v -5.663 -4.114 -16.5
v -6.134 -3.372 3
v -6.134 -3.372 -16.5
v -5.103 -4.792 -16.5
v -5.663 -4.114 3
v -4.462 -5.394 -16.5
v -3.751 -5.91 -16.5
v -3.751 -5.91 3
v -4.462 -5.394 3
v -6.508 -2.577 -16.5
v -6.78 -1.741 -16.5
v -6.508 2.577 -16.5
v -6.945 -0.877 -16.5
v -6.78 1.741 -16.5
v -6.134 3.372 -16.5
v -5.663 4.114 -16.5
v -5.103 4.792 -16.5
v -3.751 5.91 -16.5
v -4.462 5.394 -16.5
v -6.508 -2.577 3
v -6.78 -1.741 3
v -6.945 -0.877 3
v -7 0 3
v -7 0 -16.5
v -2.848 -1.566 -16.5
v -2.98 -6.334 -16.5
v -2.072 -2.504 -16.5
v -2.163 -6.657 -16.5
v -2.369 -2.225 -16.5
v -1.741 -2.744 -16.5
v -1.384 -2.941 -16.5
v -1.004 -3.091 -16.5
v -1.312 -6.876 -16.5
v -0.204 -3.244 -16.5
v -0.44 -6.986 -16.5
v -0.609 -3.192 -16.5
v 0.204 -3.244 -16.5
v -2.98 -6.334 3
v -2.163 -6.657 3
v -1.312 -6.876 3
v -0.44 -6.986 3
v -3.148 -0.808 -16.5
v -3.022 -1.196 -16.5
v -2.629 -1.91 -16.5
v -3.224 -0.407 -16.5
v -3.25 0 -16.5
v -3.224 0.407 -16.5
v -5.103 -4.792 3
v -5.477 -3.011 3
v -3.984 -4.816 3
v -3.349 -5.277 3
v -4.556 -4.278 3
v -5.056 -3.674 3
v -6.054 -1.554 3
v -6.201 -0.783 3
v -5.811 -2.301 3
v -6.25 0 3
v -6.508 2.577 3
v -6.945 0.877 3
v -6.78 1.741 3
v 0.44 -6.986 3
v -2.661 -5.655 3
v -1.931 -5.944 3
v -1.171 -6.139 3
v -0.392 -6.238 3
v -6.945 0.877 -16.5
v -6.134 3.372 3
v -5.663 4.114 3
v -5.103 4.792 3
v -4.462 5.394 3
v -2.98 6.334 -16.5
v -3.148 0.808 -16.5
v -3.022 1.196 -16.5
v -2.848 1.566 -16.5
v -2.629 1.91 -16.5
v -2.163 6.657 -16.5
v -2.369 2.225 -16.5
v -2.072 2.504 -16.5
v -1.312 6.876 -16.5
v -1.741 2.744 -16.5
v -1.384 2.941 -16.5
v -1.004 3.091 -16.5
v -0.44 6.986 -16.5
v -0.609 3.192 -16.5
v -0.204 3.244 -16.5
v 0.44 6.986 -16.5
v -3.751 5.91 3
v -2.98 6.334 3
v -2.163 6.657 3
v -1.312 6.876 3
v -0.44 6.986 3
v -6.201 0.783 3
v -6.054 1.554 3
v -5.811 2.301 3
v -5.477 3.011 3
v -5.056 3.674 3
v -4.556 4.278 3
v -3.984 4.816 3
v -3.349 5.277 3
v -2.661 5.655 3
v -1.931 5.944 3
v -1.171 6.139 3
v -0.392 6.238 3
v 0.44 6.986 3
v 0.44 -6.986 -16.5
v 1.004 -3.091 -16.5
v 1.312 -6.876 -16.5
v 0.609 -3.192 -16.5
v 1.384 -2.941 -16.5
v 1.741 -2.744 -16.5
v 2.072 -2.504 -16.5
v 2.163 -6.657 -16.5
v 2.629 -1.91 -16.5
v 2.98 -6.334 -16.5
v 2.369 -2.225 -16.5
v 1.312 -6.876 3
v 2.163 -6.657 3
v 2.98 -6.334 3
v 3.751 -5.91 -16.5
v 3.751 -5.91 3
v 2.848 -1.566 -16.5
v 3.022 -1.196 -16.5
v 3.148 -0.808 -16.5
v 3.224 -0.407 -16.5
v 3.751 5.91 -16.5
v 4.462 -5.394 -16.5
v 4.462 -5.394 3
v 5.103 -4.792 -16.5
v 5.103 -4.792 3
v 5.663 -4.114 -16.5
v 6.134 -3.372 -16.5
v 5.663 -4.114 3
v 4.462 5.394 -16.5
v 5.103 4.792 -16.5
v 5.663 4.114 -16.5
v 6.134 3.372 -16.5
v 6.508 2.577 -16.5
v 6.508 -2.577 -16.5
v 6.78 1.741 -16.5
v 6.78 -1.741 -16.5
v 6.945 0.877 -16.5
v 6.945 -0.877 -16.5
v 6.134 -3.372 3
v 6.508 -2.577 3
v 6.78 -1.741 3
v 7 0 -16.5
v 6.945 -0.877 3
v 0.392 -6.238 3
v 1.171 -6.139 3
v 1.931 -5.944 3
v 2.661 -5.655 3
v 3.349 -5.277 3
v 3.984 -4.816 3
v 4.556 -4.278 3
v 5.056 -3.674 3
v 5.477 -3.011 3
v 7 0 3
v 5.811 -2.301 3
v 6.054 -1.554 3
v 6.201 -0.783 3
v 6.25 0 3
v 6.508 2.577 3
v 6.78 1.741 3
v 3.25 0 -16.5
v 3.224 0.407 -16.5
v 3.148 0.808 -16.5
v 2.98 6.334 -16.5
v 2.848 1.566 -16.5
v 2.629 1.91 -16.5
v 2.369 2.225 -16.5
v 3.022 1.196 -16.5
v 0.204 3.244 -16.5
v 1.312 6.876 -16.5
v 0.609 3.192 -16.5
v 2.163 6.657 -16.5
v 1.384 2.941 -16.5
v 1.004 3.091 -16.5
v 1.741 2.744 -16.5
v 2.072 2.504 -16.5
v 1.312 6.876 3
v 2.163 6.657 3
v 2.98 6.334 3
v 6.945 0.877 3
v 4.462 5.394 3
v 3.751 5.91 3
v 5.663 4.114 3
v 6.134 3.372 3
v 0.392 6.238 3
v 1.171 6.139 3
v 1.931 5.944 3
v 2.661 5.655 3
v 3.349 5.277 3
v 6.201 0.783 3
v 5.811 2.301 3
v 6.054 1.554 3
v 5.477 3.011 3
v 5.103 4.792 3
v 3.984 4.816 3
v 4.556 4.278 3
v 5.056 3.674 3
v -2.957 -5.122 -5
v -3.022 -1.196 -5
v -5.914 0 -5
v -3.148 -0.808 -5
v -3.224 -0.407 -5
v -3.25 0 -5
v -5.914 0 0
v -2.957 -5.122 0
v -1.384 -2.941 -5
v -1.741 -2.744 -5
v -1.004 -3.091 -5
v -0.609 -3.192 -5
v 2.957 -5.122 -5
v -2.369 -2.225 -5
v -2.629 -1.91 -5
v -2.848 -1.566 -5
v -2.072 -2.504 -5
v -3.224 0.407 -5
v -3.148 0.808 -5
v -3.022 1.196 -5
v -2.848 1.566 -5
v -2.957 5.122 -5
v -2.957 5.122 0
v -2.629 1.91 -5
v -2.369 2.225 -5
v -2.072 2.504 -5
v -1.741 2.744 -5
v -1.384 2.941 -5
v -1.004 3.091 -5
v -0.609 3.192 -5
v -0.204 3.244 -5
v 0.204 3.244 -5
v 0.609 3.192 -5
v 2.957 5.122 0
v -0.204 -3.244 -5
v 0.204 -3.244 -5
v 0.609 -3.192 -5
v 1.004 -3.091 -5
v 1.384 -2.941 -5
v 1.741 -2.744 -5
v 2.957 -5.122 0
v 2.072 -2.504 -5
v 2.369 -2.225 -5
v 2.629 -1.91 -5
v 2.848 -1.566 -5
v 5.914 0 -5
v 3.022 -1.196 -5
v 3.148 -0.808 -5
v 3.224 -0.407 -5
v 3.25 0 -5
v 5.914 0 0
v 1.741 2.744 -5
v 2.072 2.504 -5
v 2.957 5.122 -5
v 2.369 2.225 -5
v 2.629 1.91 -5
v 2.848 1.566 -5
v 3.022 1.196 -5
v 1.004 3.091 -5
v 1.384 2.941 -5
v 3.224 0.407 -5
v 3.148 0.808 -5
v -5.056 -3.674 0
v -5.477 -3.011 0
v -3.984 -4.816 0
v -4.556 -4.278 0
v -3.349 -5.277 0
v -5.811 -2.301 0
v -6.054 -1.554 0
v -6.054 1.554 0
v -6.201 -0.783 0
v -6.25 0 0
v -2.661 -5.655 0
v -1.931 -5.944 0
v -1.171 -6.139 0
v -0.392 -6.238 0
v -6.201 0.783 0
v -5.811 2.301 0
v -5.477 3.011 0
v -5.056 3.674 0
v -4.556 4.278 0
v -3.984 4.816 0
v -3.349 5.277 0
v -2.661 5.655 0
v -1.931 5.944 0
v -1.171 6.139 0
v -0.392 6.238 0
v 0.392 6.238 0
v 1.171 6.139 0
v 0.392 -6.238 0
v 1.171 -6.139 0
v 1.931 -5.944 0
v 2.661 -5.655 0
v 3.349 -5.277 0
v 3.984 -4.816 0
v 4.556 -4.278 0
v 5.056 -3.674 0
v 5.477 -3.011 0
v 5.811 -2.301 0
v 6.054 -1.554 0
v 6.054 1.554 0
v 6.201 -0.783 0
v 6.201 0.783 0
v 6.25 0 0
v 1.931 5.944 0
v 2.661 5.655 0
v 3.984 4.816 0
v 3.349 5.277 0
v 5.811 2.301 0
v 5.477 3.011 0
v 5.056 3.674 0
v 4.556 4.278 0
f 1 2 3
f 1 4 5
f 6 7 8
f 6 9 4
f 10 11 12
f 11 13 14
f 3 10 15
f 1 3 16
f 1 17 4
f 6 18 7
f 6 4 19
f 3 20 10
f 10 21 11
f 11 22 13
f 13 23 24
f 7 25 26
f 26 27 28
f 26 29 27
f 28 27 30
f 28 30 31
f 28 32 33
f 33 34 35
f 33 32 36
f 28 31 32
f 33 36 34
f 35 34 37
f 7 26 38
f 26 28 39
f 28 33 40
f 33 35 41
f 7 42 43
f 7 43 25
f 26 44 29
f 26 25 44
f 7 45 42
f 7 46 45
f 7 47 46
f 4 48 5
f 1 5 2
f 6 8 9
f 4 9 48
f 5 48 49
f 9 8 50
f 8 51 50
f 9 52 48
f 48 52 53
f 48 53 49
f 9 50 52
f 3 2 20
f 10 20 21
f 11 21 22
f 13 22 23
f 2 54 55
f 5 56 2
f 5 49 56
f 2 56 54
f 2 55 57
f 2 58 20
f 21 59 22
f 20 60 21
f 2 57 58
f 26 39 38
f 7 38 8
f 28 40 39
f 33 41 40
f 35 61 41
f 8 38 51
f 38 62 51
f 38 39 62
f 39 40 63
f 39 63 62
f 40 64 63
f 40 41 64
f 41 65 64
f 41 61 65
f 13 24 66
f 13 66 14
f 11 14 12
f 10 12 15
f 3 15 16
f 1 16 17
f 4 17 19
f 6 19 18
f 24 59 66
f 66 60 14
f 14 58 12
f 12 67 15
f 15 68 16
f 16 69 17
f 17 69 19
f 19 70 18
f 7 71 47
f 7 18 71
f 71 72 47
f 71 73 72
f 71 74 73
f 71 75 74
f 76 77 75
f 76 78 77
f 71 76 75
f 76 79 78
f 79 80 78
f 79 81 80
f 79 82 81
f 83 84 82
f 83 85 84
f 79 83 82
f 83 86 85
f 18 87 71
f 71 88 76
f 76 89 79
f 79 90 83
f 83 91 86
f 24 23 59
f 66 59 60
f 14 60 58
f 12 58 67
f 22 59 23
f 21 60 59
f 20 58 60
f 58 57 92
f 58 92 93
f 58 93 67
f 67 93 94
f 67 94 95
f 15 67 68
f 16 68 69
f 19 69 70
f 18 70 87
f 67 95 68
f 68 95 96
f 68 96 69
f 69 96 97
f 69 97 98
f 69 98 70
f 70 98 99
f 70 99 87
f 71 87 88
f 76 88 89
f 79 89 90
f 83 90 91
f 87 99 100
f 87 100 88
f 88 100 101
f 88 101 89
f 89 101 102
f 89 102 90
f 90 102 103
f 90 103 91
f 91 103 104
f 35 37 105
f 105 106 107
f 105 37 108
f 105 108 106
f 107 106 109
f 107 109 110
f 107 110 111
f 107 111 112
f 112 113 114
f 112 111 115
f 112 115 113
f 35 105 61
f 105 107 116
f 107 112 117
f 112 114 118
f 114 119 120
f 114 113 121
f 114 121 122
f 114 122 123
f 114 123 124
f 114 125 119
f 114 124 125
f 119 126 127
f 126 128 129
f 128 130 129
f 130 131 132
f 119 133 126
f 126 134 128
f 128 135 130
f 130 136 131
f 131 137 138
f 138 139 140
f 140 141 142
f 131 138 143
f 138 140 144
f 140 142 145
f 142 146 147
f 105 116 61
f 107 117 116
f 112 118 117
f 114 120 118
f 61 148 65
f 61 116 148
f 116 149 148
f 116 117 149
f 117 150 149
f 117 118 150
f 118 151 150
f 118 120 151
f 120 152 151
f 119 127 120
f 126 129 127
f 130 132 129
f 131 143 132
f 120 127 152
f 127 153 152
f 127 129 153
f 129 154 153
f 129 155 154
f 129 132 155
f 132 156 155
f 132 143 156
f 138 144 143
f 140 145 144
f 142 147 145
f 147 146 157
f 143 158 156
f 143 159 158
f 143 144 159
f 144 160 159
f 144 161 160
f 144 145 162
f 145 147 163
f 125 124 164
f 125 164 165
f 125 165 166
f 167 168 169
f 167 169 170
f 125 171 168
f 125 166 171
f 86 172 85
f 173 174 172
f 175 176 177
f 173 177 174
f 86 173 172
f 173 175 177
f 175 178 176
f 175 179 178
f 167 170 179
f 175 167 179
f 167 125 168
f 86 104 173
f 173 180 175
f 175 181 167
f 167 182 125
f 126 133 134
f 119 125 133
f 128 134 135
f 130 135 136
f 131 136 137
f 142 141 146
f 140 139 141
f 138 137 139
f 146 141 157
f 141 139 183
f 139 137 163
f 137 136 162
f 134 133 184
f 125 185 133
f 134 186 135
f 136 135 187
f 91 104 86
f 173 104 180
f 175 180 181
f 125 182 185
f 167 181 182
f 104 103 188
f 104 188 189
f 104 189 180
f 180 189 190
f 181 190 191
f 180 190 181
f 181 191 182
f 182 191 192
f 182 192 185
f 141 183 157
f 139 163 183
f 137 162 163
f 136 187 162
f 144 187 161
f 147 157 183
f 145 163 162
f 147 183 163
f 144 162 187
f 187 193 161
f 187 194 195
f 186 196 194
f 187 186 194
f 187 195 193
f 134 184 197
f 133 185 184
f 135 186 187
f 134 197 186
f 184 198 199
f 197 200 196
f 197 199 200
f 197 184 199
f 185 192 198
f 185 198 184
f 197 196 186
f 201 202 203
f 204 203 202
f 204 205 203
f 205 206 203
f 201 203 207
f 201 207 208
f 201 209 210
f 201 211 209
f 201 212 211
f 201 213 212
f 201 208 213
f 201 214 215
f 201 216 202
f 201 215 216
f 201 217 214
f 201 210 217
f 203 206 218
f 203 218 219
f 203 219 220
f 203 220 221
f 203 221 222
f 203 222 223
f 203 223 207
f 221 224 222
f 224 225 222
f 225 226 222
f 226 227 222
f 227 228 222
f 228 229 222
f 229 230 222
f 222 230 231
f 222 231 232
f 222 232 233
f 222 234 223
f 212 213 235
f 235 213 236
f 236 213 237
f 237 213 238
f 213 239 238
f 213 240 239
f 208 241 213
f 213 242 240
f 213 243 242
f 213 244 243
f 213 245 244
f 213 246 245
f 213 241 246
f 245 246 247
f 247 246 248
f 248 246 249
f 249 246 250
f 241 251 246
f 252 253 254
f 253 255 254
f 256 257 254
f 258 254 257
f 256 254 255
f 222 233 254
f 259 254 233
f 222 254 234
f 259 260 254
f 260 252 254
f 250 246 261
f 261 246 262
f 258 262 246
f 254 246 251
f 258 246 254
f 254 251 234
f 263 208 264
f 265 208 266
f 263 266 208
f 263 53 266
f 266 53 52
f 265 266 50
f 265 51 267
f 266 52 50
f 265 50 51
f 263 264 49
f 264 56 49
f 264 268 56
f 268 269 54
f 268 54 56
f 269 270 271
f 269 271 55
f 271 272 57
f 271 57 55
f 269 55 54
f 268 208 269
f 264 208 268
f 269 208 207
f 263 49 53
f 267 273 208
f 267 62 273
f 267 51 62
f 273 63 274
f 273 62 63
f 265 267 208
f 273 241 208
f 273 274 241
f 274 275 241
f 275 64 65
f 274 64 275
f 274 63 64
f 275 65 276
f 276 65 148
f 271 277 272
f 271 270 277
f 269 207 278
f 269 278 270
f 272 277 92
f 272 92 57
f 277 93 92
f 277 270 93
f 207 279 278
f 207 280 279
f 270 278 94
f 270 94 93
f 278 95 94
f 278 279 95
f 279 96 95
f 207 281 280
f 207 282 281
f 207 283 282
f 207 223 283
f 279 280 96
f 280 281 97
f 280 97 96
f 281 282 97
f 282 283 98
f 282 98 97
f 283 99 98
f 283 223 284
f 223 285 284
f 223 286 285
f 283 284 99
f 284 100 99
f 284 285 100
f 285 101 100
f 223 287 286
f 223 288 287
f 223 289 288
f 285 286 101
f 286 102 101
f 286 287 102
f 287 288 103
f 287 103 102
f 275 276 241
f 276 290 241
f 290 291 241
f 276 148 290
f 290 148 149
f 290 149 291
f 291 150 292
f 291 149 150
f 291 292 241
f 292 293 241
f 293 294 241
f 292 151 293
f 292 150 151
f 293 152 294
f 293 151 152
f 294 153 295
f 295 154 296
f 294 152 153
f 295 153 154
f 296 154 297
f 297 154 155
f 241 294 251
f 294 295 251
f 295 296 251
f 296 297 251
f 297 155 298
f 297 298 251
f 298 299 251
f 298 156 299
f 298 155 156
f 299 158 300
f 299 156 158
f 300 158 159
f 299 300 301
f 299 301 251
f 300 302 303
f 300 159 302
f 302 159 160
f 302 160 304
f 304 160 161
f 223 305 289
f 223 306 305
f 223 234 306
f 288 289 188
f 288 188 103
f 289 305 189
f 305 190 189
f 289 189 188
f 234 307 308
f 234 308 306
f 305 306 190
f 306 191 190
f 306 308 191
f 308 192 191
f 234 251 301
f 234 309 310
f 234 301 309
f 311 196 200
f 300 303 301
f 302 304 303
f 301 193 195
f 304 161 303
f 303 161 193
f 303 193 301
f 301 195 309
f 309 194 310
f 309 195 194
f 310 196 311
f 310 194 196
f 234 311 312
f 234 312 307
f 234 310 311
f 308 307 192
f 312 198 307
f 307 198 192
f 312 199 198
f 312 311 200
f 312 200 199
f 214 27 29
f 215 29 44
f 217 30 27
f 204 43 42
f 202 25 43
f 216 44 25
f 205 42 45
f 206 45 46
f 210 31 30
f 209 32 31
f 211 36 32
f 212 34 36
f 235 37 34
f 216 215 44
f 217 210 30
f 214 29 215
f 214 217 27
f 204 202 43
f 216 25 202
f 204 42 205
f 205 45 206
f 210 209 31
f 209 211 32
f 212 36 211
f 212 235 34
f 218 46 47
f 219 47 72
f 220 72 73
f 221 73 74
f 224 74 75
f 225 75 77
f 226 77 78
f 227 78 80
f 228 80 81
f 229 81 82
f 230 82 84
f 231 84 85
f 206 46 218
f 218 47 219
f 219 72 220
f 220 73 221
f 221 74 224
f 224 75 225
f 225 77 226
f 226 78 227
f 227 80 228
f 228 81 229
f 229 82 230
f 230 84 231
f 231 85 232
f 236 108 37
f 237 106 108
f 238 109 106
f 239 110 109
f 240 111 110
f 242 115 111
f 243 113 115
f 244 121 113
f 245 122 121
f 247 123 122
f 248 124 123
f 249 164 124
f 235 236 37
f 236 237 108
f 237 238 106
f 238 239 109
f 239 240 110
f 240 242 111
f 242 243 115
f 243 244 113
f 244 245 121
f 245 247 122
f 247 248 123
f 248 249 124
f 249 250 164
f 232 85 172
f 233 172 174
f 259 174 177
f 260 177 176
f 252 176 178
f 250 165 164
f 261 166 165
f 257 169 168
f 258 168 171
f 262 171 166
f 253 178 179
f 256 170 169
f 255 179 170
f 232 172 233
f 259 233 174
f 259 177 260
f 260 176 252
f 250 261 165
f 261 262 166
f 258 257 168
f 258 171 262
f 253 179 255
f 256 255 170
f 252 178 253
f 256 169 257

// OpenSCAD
$fn = 50;

difference() {
	union() {
		translate(v = [0, 0, -16.5]) {
			cylinder(h = 19.5, r = 7.0);
		}
		#translate(v = [0, 0, -18.0]) {
			cylinder(h = 18, r = 2.875);
		}
	}
	union() {
		translate(v = [0, 0, 0]) {
			rotate(a = [0, 0, 0]) {
				difference() {
					union() {
						translate(v = [0, 0, -5]) {
							linear_extrude(height = 5) {
								polygon(points = [[5.914249999999999, 0.0], [2.957125, 5.1218907443321156], [-2.9571249999999982, 5.1218907443321156], [-5.914249999999999, 7.242867331857232e-16], [-2.9571250000000022, -5.121890744332115], [2.9571249999999956, -5.121890744332118]]);
							}
						}
					}
					union();
				}
			}
		}
		#cylinder(h = 3, r = 6.25);
		#translate(v = [0, 0, -100.0]) {
			cylinder(h = 200, r = 3.25);
		}
	}
}
